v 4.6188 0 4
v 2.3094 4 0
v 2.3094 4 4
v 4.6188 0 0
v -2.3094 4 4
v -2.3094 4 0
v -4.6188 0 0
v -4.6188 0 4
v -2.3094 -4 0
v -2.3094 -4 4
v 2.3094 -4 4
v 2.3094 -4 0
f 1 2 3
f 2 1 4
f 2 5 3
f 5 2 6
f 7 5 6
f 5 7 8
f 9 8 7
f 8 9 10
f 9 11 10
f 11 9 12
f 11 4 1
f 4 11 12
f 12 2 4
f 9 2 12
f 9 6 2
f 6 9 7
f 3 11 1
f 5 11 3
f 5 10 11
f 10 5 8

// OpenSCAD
// -*- mode: SCAD ; c-file-style: "ellemtel" ; coding: utf-8 -*-
//
// Buchse für M3, grob, 10 mm
//
// © 2017 Roland Sieker <ospalh@gmail.com>
// Licence: CC-0 4.0

d_i = 8;
r_a = d_i/sqrt(3);
echo("r_a", r_a);
h = 4;
$fn=6;

cylinder(r=r_a, h=h);
